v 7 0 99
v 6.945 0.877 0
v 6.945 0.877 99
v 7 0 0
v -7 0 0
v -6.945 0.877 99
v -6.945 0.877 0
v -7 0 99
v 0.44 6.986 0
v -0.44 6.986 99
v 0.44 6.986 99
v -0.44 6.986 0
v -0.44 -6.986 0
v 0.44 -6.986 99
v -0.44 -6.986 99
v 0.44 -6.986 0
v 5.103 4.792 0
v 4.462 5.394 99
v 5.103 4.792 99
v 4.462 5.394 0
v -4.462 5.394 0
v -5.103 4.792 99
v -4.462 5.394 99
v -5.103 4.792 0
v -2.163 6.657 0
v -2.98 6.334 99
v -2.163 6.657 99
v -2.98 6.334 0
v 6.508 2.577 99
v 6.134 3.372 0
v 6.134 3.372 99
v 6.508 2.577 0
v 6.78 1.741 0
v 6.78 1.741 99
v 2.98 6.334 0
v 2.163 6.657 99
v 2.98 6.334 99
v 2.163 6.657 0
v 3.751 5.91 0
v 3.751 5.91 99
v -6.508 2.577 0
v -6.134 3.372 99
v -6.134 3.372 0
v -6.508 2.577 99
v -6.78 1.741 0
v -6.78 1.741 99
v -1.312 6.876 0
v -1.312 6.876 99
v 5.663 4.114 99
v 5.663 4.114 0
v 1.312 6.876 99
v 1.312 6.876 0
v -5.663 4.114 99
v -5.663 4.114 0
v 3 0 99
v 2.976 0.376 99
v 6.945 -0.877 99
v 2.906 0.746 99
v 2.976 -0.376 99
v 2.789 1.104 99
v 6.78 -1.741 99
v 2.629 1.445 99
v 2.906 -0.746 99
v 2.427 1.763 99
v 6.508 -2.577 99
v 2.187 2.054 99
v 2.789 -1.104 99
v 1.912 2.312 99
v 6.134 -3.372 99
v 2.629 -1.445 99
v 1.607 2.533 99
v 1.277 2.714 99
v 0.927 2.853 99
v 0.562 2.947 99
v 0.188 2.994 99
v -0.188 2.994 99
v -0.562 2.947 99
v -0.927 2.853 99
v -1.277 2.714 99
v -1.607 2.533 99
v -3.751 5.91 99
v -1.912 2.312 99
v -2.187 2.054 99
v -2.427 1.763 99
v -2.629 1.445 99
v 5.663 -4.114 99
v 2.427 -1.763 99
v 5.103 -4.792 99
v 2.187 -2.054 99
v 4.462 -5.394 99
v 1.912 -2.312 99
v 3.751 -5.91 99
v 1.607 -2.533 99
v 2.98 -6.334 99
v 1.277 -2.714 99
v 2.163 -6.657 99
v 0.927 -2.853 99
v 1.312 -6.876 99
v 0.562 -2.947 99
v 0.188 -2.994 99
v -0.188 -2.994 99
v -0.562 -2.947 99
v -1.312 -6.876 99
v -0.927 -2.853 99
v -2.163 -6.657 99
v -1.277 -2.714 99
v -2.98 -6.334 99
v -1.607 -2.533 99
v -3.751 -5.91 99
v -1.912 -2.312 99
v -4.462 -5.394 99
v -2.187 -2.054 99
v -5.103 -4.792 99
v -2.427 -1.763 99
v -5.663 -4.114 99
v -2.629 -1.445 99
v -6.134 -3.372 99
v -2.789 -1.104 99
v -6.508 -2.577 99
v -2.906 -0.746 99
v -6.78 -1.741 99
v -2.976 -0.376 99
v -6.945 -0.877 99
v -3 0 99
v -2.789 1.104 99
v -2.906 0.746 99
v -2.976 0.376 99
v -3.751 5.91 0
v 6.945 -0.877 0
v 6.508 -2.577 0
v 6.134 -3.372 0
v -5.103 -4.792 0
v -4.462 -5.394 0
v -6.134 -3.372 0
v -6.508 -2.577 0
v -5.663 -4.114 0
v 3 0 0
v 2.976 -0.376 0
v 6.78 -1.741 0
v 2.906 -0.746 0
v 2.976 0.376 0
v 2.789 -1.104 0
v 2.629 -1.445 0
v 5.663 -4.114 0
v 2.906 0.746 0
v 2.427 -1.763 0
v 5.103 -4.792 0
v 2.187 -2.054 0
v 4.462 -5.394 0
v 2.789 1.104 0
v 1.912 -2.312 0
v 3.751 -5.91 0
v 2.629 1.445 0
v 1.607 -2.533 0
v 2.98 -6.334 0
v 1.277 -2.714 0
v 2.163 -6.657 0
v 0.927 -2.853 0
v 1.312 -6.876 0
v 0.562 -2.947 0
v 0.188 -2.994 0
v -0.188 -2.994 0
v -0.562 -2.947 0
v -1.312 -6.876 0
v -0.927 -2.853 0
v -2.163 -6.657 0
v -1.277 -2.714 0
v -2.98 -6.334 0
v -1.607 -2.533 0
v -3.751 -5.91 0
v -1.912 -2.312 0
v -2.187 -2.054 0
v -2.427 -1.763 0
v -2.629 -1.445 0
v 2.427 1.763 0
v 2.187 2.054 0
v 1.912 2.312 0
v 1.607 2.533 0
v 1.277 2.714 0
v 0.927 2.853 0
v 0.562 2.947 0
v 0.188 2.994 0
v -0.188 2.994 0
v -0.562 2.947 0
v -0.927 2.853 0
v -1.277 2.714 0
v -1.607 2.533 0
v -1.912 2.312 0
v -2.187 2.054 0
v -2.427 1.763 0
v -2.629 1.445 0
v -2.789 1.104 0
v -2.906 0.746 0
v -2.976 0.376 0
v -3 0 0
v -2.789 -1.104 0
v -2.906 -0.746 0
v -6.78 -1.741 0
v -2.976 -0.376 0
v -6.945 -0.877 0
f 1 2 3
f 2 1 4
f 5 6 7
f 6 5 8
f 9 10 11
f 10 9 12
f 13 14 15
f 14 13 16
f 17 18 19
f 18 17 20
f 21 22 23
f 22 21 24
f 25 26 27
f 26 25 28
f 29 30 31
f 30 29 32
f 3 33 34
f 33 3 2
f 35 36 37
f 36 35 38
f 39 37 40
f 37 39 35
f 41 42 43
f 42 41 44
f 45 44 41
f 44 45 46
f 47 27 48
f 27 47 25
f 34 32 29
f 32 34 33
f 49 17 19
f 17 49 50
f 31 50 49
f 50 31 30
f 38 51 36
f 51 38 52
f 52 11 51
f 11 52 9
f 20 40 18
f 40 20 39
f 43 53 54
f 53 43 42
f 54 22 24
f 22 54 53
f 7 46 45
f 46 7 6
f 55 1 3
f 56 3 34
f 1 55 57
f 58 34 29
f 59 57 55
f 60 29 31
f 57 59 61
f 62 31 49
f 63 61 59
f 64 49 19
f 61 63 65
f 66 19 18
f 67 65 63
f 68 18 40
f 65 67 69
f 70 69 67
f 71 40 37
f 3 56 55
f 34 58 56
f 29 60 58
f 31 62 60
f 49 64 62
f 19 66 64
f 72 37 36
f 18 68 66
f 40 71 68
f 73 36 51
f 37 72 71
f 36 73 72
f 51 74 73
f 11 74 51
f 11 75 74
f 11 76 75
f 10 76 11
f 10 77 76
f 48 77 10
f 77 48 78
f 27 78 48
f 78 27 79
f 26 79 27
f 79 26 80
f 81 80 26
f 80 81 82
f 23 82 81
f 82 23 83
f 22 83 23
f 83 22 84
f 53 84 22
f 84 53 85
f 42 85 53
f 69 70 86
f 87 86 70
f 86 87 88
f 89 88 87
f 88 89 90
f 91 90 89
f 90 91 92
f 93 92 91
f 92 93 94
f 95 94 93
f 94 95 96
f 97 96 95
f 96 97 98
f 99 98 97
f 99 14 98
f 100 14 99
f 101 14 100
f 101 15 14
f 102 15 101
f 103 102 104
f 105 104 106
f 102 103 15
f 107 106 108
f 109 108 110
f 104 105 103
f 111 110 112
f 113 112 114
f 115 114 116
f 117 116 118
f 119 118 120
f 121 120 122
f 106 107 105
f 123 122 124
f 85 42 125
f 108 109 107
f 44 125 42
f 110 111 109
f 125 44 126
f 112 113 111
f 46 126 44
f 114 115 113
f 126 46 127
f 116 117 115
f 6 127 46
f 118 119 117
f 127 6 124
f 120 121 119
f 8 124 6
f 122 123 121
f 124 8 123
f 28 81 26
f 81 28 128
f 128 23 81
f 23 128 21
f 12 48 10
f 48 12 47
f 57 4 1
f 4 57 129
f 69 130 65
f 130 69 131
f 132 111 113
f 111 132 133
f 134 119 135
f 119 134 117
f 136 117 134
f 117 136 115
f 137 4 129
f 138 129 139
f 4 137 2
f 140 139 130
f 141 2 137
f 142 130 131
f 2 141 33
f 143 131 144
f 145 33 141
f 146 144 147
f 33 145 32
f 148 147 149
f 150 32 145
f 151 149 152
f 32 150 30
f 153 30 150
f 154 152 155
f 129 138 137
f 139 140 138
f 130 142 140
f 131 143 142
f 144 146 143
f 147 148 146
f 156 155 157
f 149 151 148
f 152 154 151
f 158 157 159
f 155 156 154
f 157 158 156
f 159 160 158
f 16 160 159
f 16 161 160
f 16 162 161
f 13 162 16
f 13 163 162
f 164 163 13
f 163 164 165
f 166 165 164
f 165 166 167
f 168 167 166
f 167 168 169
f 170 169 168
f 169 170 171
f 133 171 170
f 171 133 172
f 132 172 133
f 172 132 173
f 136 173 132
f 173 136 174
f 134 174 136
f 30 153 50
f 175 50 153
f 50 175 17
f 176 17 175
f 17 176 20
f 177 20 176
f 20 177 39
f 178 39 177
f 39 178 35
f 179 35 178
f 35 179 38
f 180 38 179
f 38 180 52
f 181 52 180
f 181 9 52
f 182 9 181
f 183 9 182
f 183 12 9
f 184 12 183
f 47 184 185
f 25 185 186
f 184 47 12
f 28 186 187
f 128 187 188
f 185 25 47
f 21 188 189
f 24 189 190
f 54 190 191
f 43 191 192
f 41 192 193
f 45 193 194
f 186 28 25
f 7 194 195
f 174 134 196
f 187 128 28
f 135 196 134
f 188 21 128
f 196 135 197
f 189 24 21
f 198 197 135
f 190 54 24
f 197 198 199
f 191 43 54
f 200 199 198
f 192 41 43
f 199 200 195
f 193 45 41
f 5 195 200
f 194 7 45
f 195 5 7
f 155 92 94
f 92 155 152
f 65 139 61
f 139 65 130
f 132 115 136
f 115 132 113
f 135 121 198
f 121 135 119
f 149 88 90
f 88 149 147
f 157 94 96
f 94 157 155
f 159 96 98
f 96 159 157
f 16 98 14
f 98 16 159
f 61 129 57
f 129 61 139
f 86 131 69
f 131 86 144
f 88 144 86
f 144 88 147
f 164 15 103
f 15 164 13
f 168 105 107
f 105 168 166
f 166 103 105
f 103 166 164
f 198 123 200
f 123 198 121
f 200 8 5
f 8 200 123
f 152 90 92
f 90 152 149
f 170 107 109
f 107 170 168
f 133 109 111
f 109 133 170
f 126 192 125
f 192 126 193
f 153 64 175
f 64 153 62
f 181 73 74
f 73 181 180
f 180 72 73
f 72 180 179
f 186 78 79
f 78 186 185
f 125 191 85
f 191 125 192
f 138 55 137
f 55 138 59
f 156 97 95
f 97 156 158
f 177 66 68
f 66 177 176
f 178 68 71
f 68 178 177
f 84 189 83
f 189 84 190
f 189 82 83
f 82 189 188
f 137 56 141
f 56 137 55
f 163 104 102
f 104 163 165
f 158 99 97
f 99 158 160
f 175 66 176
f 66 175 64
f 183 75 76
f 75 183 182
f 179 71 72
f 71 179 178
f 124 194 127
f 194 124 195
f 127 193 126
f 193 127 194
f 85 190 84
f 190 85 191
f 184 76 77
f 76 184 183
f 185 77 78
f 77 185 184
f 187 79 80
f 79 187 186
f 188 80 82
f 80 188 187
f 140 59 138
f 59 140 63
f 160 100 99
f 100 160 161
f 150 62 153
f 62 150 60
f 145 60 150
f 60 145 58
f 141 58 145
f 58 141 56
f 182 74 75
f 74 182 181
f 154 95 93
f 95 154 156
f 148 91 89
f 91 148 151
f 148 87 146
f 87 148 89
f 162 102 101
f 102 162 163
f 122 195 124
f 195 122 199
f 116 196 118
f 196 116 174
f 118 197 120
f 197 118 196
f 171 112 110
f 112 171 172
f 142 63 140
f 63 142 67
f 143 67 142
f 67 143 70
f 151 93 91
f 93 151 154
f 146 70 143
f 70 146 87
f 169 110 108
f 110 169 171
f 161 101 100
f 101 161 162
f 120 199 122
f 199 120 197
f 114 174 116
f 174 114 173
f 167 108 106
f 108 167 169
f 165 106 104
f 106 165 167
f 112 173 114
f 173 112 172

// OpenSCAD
$fn = 50;


difference() {
	union() {
		cylinder(h = 99, r = 7.0000000000);
	}
	union() {
		translate(v = [0, 0, -100]) {
			cylinder(h = 200, r = 3.0000000000);
		}
	}
}
